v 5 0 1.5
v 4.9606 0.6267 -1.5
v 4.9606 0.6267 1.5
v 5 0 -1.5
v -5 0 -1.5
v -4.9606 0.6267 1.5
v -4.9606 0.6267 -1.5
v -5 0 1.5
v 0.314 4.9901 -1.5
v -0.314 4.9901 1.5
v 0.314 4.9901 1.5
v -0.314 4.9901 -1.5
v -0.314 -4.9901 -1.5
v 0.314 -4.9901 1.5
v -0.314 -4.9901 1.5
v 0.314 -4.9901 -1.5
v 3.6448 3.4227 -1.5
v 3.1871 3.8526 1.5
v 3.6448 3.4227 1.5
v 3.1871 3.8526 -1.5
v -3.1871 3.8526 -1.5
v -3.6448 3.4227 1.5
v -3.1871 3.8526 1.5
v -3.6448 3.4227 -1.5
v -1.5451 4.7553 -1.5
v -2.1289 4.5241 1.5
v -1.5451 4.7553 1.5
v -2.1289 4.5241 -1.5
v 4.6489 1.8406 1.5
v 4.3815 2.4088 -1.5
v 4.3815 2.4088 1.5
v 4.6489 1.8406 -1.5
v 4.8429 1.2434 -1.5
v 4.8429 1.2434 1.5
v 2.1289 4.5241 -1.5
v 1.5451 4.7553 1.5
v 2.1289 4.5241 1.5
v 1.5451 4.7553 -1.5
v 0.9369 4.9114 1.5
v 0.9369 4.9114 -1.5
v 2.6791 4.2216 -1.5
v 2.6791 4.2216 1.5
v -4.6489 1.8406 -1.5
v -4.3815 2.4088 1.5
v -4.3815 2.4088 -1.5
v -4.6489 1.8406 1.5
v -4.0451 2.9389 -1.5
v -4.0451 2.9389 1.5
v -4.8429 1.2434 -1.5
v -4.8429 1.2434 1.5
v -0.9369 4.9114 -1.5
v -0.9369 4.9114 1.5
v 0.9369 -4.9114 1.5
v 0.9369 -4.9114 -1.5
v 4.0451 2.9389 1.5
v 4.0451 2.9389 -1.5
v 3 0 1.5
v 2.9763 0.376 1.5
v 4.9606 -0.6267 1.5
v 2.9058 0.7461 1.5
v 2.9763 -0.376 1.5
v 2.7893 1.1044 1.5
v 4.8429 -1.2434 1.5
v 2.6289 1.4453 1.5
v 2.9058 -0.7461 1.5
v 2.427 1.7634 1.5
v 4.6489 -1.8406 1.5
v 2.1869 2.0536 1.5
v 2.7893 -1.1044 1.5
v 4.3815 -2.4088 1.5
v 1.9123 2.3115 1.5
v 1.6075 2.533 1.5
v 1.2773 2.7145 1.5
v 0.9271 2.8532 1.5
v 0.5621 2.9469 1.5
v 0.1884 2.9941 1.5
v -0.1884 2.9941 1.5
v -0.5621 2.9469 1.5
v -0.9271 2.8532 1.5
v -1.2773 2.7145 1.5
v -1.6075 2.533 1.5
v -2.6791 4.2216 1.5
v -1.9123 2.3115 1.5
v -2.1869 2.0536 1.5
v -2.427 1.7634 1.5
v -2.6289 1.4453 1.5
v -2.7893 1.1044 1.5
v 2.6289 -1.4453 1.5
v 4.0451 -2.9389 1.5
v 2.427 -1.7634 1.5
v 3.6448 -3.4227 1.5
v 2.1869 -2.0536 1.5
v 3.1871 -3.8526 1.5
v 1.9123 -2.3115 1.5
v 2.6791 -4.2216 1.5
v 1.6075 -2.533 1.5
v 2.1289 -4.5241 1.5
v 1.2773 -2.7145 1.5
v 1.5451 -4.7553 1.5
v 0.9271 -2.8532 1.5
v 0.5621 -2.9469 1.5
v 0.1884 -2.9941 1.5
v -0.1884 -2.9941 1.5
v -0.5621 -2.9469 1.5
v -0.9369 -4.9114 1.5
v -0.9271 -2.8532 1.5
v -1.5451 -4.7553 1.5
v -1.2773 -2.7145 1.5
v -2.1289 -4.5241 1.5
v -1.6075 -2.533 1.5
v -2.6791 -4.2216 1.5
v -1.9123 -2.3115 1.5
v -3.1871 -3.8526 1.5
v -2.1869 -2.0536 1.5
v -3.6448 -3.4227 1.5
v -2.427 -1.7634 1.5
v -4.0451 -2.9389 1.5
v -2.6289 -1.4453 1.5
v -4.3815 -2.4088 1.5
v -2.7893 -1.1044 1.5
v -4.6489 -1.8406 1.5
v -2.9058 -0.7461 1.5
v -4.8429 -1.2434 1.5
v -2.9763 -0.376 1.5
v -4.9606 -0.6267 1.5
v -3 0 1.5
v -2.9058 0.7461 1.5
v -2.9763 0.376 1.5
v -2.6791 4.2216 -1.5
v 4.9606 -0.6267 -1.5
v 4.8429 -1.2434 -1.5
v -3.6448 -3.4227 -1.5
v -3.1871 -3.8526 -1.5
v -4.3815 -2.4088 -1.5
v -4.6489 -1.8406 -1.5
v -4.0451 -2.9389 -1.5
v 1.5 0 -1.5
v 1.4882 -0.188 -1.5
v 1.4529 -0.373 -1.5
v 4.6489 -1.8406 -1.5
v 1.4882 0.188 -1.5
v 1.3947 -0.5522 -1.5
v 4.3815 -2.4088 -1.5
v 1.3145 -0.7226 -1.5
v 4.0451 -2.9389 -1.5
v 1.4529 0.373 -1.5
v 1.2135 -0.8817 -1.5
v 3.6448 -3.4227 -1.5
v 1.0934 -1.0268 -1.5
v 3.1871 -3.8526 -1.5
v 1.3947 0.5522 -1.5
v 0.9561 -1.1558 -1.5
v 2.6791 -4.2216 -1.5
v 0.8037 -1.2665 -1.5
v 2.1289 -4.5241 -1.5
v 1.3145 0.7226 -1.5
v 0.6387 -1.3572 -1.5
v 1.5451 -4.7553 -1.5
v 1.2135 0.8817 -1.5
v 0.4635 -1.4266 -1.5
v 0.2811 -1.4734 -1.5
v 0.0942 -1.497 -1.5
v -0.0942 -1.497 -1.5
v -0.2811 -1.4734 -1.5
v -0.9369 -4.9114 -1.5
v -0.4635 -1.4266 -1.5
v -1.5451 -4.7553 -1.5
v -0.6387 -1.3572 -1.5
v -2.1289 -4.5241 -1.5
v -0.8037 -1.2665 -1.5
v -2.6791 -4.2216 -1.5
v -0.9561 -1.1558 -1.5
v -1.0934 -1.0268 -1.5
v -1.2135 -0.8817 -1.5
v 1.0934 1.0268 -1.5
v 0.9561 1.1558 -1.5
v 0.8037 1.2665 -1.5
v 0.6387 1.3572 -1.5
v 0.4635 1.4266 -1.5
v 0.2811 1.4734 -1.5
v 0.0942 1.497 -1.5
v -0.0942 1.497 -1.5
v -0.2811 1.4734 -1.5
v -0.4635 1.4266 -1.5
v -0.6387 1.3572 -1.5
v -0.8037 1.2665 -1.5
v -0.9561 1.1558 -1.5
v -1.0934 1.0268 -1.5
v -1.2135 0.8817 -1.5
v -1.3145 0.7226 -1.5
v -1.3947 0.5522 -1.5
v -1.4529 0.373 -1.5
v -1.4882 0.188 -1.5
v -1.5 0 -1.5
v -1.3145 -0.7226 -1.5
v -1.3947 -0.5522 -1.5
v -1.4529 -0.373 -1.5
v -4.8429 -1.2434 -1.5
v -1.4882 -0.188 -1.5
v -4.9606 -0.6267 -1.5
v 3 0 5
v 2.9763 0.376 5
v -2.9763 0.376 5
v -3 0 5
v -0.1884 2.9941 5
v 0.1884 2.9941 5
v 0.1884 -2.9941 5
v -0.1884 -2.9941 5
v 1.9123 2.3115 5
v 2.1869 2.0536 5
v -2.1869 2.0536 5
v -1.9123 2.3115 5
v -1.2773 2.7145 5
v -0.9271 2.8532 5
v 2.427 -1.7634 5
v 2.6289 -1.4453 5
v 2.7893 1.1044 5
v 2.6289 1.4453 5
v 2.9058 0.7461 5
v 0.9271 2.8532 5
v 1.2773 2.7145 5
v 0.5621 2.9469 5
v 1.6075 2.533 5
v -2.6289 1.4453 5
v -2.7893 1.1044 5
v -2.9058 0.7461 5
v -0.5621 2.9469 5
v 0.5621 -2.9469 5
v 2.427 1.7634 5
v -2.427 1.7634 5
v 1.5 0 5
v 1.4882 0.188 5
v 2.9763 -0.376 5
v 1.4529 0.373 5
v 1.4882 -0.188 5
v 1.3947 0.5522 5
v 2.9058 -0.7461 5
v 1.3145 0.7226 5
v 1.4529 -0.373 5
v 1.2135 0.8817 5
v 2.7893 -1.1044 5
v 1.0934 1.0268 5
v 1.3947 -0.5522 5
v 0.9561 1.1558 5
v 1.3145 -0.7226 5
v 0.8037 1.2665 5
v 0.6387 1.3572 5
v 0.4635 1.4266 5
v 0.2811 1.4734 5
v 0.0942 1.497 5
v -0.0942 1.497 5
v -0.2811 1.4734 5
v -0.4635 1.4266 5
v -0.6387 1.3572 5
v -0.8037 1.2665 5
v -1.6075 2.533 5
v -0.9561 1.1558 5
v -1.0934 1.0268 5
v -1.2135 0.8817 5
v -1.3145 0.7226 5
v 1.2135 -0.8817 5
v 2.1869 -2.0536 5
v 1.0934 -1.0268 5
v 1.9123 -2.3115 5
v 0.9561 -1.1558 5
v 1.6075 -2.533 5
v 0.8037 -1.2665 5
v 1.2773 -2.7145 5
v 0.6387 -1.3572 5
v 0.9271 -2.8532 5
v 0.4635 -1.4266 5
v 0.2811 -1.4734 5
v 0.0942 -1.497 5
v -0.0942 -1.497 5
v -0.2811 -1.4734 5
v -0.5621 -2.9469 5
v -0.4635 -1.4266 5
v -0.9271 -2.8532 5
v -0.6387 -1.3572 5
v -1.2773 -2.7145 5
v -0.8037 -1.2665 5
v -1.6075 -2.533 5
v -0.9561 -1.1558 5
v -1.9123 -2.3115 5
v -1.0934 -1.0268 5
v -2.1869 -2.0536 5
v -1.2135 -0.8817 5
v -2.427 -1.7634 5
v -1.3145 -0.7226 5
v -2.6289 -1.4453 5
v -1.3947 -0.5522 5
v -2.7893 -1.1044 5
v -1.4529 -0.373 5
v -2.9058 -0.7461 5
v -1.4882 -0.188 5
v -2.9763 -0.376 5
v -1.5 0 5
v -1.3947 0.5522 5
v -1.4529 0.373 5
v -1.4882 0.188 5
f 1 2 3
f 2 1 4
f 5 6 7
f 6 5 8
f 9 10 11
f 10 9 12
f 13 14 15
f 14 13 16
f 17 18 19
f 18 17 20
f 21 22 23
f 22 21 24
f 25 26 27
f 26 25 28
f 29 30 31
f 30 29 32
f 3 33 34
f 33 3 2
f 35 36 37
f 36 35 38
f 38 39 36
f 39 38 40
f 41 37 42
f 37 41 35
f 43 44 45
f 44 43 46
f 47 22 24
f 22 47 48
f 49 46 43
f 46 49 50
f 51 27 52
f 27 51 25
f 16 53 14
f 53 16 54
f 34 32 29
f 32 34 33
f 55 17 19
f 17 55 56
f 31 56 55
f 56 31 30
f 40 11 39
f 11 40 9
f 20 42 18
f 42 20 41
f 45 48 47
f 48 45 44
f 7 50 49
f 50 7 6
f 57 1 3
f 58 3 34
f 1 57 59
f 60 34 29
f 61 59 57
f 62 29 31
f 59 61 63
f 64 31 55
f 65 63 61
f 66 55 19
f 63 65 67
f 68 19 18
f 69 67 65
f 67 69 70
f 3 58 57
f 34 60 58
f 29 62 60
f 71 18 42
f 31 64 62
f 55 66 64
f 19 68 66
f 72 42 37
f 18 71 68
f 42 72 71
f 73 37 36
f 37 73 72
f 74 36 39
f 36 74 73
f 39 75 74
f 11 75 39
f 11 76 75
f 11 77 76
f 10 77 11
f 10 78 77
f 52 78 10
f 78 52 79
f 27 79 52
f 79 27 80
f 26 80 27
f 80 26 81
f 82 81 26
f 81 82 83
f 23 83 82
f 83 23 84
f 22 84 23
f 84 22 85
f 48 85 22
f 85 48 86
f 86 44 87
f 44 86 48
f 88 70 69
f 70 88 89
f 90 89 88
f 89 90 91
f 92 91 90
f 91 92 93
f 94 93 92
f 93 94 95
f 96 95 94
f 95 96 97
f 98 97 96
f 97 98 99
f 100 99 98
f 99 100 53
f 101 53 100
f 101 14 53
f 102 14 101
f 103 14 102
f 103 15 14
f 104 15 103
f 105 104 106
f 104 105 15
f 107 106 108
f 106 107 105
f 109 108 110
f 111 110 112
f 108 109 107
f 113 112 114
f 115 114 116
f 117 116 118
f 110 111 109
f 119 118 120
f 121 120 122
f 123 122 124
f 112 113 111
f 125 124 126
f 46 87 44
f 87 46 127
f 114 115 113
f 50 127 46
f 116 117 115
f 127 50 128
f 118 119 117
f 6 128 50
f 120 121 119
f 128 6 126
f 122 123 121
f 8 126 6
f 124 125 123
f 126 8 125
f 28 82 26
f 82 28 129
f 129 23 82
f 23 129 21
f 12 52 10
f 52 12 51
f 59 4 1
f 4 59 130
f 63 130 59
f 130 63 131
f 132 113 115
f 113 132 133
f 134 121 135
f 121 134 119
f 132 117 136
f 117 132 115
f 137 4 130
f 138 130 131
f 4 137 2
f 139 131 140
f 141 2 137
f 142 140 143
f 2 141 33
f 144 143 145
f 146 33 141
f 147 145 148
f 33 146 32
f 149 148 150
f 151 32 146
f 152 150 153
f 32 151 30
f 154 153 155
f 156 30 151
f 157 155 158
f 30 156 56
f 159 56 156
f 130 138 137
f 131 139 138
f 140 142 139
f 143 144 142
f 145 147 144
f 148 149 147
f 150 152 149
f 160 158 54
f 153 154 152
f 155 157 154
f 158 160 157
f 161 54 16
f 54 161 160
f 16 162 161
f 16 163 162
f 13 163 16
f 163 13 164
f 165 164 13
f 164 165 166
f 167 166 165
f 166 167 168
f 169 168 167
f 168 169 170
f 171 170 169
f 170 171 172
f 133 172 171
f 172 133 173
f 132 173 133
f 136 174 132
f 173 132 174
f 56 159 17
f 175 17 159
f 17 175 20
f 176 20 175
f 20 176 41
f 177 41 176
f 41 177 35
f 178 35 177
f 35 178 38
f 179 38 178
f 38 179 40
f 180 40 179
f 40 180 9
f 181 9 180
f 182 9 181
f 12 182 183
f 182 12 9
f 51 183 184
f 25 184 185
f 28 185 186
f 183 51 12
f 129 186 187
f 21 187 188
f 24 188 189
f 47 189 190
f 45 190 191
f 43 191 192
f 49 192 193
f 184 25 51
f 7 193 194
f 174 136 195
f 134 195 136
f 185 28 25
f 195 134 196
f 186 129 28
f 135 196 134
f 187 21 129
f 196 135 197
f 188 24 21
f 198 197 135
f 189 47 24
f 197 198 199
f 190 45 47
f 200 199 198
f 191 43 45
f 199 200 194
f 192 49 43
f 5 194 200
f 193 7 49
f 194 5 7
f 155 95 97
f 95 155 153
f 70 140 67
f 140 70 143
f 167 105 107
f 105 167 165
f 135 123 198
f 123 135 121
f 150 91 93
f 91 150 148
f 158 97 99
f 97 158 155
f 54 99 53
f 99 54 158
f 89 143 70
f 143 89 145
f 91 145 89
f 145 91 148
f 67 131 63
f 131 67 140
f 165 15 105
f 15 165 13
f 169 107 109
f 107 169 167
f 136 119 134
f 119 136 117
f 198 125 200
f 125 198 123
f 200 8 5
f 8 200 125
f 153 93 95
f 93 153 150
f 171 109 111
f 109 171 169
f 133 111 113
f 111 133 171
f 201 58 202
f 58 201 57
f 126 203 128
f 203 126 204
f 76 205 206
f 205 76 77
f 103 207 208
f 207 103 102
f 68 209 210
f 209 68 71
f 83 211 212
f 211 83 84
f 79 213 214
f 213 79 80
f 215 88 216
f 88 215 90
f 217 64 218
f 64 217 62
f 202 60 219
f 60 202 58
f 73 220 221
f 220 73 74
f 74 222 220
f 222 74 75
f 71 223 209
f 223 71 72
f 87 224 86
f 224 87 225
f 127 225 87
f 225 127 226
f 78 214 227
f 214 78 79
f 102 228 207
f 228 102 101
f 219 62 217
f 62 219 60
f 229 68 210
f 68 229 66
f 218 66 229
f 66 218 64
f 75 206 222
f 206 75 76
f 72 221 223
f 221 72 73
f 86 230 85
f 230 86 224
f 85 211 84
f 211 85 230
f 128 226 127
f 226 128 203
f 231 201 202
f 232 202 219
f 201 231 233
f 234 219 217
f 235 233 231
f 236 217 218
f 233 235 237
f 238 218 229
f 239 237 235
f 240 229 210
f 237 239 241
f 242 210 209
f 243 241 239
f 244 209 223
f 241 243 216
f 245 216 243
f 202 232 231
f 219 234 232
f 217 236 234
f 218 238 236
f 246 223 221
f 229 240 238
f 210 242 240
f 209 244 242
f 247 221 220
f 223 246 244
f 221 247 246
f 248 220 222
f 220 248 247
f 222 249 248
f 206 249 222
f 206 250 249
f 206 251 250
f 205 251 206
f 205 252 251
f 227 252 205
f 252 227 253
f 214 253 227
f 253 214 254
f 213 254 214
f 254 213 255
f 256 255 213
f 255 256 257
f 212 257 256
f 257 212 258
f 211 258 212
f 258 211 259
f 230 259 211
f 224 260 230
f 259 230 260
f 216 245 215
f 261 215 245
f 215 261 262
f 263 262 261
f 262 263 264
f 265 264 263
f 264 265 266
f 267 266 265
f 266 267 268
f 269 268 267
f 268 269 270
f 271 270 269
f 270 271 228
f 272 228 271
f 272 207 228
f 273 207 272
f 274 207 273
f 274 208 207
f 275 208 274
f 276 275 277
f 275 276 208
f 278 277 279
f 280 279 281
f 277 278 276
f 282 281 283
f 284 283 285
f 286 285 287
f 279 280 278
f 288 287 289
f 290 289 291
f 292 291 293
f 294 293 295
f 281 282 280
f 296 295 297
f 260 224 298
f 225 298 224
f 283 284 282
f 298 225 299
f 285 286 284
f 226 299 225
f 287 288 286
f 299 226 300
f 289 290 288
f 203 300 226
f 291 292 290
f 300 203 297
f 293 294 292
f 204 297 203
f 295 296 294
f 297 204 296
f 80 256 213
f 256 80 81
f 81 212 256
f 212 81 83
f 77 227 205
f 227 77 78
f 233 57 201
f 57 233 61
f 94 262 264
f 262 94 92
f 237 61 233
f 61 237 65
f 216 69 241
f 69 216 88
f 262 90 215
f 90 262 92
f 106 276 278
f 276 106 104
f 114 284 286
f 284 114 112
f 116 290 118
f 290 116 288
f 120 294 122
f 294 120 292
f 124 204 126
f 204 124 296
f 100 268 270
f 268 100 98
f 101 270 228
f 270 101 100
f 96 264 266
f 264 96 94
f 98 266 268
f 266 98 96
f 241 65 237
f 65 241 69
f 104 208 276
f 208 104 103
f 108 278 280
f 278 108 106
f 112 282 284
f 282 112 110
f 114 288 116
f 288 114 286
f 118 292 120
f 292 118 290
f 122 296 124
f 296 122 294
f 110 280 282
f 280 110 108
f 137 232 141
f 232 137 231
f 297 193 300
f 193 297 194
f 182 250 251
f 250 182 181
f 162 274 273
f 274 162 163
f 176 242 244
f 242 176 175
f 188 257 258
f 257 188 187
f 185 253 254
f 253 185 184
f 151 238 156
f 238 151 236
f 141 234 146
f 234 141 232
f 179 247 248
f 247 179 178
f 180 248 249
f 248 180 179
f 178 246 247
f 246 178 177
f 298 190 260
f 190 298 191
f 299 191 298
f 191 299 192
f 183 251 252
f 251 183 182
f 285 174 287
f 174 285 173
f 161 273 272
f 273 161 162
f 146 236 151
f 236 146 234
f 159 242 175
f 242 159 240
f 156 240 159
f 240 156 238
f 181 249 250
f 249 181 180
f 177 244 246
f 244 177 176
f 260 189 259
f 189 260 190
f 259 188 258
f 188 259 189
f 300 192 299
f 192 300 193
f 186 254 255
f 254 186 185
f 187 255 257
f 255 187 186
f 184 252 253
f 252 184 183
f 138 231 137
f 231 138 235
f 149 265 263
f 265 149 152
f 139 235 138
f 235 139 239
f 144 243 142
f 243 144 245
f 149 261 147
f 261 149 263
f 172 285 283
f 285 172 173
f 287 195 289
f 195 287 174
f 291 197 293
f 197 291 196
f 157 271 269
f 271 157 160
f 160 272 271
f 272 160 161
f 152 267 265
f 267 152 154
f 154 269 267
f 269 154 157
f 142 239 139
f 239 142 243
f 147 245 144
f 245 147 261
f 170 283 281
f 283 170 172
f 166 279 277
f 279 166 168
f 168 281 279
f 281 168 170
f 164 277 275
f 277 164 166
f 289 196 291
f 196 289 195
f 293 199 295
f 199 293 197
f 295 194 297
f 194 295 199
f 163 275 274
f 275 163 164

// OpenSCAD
$fn = 50;


difference() {
	union() {
		translate(v = [0, 0, -1.5000000000]) {
			cylinder(h = 3, r = 5.0000000000);
		}
		translate(v = [0, 0, -1.5000000000]) {
			cylinder(h = 6.5000000000, r = 3.0000000000);
		}
	}
	union() {
		translate(v = [0, 0, -50.0000000000]) {
			cylinder(h = 100, r = 1.5000000000);
		}
	}
}
